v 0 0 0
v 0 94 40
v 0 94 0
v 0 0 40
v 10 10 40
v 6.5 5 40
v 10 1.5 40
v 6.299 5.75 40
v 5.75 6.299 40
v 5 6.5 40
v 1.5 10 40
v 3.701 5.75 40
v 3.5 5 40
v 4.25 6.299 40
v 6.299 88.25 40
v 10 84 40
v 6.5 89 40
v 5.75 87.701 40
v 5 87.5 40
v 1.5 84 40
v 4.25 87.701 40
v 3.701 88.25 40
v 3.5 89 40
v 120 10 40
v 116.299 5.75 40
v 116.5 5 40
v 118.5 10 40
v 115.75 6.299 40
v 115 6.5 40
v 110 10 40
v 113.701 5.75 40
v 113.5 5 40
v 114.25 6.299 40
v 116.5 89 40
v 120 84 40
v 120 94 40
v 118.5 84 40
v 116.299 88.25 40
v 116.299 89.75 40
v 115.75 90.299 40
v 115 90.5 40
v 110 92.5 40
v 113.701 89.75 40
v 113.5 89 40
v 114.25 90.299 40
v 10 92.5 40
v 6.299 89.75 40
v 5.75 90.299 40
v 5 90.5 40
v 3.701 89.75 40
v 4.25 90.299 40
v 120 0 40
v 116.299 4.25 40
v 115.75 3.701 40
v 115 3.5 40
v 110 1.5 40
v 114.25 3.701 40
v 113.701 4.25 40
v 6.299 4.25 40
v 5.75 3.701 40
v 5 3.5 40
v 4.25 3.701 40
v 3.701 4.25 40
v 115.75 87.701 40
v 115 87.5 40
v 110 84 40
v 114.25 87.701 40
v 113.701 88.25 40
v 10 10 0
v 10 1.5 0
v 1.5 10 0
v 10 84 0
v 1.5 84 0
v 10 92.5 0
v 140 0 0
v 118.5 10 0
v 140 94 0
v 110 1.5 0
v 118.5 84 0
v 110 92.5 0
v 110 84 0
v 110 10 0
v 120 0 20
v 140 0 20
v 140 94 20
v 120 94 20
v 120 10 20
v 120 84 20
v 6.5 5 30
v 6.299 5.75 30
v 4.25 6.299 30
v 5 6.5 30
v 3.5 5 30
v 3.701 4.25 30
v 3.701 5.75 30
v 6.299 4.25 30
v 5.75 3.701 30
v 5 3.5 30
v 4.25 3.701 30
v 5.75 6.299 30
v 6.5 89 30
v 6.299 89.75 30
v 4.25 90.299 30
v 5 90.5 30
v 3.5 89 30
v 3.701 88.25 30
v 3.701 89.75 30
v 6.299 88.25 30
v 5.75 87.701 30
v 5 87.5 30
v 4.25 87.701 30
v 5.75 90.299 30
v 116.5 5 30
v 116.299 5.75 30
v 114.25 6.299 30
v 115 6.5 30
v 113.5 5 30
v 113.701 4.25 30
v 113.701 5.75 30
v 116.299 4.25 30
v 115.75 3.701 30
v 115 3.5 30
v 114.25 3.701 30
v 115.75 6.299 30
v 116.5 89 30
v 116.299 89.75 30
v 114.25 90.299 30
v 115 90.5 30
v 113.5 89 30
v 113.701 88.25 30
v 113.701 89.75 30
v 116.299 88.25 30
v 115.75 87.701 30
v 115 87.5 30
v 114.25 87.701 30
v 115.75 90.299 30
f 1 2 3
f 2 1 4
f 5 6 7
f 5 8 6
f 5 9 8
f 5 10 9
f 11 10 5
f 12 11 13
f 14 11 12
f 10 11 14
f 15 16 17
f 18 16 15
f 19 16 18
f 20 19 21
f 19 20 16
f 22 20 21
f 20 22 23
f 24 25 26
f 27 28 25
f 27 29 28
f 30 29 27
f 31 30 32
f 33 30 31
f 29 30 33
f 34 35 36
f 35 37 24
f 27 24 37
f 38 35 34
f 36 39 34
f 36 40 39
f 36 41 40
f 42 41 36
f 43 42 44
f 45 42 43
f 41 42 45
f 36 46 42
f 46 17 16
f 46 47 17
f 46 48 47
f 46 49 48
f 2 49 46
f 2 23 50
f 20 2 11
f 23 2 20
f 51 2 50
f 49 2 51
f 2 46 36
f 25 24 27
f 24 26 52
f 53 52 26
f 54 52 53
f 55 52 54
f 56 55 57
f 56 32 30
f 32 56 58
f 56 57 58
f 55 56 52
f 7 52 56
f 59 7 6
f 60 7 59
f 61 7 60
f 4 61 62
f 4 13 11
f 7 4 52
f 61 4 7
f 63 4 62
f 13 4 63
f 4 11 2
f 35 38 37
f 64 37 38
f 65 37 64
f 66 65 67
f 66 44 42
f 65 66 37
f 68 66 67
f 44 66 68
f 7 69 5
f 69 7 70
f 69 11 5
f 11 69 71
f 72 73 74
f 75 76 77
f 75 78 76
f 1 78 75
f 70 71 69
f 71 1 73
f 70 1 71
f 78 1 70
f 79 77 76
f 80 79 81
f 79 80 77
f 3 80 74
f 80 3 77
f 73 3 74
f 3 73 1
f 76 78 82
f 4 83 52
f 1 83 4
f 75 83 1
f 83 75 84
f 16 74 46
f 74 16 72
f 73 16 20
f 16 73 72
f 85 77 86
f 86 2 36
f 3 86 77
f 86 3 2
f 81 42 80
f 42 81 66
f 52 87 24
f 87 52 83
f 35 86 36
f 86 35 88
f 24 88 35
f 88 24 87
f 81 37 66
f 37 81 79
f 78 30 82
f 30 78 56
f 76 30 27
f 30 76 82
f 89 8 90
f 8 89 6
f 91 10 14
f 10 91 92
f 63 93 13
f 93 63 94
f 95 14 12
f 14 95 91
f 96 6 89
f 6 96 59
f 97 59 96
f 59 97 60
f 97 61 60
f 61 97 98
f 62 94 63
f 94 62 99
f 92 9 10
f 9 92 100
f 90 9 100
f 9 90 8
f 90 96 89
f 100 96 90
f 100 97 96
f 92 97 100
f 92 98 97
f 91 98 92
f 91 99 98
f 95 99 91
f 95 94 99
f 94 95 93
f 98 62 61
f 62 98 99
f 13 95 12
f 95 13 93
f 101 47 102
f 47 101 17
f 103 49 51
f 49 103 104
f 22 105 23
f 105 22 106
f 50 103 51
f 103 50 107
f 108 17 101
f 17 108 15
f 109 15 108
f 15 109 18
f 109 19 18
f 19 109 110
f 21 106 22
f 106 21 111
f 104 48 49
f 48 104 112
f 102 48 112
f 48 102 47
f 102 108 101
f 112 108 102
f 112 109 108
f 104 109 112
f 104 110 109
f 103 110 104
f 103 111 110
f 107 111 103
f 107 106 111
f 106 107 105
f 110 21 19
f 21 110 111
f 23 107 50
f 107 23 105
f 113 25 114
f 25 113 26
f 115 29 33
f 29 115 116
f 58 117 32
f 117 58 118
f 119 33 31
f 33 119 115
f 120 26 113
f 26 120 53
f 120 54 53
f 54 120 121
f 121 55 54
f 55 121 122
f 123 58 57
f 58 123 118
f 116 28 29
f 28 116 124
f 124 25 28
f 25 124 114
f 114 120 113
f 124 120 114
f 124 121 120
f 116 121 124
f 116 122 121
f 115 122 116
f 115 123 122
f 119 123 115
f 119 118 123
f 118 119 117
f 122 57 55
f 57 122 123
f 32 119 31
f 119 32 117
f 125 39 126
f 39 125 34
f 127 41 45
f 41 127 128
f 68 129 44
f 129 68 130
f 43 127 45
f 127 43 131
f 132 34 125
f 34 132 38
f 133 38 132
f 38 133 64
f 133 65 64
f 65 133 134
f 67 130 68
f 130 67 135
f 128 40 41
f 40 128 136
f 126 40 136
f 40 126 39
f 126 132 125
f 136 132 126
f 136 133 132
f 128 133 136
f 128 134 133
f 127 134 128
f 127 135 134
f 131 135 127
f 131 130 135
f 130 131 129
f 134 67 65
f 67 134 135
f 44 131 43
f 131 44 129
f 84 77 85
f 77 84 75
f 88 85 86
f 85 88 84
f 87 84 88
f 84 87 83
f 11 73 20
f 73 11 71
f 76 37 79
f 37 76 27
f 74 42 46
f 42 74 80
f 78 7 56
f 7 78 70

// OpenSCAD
difference(){
cube([140,94,40]);
translate([120,-1,20])cube([21,100,21]);
translate([1.5,1.5,-1])cube([117,91,42]);
}
difference(){
union(){
cube([10,10,40]);
translate([0,84,0])cube([10,10,40]);
translate([110,84,0])cube([10,10,40]);
translate([110,0,0])cube([10,10,40]);
}
translate([5,5,30])cylinder(d=3,h=12,$fn=12);
translate([5,89,30])cylinder(d=3,h=12,$fn=12);
translate([115,5,30])cylinder(d=3,h=12,$fn=12);
translate([115,89,30])cylinder(d=3,h=12,$fn=12);
}
